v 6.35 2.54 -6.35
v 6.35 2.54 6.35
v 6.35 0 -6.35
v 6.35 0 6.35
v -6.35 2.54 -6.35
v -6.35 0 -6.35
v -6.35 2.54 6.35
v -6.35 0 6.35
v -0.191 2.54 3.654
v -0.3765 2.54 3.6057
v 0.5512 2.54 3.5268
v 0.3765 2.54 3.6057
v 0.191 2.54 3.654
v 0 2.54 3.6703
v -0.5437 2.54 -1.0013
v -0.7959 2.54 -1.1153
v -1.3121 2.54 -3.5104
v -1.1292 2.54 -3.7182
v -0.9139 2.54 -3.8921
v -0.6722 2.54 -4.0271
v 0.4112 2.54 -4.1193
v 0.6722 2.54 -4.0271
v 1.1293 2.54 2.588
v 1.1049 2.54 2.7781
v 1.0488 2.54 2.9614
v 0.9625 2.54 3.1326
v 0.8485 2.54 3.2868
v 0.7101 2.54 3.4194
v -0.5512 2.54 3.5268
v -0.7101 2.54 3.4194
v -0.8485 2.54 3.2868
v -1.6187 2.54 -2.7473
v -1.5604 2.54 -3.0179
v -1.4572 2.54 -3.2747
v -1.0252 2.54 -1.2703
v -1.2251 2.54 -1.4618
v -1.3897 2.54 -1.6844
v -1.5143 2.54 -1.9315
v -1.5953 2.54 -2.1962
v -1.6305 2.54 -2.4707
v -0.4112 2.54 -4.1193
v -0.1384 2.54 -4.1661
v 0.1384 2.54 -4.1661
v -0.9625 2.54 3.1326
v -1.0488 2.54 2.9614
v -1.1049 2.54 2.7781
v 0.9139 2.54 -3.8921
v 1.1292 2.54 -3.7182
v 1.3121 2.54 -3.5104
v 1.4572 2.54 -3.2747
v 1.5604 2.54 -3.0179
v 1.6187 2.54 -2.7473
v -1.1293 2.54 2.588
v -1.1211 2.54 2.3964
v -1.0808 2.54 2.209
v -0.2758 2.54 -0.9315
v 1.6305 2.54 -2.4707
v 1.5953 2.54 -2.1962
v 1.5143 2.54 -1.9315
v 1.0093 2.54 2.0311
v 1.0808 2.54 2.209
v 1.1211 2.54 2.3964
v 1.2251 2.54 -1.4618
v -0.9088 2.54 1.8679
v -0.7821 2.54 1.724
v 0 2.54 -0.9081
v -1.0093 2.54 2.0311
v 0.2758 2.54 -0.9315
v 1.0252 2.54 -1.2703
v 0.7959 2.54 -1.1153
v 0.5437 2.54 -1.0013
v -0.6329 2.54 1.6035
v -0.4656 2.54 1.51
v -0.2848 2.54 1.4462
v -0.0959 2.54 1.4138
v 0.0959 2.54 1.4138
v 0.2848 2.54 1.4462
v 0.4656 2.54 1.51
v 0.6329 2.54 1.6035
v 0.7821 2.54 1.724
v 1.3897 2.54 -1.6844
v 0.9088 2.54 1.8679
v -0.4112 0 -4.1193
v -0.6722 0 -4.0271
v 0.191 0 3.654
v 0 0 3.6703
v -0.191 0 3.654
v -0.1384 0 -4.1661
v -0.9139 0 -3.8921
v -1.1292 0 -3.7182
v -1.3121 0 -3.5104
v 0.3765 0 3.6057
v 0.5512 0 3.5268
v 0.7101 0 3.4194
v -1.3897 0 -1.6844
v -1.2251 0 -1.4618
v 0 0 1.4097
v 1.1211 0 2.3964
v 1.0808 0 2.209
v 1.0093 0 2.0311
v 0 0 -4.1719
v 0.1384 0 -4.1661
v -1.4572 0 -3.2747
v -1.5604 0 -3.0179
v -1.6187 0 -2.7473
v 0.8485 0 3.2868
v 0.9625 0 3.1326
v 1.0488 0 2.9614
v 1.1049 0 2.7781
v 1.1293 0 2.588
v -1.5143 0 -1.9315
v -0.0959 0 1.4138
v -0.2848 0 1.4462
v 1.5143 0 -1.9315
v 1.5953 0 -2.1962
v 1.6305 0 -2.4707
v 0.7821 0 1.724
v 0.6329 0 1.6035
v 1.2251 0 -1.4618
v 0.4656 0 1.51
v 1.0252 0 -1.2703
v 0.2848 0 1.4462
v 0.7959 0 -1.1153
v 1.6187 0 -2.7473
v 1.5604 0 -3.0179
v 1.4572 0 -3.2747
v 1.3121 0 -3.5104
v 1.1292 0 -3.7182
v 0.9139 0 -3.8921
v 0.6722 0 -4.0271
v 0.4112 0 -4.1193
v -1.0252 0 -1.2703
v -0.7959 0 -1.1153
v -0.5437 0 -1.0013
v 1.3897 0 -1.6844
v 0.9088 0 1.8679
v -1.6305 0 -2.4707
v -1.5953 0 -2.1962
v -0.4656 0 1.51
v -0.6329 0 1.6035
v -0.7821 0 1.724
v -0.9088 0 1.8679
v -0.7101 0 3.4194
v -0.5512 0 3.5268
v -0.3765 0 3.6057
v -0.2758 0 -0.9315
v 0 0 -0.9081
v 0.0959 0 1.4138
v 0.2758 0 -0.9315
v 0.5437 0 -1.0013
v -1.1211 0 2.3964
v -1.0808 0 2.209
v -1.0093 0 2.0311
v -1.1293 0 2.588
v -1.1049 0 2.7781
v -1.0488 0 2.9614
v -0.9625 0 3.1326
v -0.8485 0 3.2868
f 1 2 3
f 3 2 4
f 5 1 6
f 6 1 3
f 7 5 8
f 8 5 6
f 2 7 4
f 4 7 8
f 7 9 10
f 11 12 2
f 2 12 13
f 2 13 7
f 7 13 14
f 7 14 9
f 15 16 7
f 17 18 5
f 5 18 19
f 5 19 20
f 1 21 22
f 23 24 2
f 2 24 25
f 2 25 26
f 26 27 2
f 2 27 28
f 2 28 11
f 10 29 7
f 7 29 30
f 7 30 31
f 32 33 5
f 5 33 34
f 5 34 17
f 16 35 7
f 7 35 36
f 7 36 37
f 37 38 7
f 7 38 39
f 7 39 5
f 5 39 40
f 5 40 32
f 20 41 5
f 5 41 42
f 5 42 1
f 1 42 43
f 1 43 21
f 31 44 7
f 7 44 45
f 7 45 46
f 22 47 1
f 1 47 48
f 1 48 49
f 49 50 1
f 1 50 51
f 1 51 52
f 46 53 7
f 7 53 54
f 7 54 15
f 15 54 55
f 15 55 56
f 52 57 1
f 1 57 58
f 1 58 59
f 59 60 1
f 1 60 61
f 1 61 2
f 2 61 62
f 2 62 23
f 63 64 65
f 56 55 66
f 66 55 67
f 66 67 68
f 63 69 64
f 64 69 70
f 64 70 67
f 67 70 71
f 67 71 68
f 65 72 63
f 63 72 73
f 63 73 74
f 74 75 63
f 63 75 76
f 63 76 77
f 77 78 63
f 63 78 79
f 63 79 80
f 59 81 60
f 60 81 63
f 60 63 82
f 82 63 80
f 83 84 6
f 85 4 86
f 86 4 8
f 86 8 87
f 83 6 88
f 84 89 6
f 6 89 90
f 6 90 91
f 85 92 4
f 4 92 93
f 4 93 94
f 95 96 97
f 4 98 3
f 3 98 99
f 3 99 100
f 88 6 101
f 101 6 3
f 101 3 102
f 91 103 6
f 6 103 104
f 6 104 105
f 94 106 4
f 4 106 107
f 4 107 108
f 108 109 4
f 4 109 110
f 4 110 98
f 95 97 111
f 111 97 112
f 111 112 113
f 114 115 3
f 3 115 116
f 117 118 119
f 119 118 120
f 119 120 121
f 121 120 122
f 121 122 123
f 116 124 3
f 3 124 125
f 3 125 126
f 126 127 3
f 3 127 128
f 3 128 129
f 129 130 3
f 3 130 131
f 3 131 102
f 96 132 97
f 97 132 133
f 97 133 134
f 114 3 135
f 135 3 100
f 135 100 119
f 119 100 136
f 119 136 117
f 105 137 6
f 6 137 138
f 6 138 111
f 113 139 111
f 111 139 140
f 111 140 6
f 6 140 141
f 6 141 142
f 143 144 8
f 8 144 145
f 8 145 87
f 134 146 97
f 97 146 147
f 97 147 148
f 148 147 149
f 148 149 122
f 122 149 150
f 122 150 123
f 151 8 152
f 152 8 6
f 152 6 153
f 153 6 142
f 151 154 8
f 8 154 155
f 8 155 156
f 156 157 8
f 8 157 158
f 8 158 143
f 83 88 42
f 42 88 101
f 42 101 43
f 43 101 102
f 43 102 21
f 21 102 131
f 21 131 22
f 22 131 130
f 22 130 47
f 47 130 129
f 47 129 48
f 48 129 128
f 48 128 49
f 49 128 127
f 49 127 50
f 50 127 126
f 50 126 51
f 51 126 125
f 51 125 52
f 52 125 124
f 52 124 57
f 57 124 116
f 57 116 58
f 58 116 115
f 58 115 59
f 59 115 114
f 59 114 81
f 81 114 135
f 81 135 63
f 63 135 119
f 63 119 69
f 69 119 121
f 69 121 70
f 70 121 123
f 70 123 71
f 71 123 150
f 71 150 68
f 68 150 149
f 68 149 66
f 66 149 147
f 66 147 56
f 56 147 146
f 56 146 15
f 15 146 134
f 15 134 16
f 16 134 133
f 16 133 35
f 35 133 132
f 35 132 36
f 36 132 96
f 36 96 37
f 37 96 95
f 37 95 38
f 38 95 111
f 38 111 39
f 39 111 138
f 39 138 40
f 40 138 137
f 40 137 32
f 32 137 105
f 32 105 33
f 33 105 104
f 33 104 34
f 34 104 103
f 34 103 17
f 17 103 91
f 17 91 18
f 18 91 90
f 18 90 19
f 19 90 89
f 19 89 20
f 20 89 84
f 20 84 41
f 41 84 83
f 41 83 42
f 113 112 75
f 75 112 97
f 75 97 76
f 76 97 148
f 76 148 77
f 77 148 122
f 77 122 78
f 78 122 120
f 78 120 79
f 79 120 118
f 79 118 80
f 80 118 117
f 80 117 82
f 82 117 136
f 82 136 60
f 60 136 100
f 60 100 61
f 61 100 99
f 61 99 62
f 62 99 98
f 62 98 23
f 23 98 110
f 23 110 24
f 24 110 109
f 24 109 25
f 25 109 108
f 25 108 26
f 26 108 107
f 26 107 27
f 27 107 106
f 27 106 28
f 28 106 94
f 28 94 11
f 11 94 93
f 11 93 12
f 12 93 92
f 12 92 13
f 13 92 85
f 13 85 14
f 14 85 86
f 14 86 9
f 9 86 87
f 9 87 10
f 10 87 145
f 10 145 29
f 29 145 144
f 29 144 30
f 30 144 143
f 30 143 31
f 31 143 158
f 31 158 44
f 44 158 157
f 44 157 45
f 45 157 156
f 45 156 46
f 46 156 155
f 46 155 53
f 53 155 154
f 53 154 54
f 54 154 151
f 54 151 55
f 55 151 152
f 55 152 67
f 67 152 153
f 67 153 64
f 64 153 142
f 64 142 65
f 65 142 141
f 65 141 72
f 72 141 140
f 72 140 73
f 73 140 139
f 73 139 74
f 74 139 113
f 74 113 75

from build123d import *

# Parameters (mm, degrees)
SKETCH1_W                 = 12.7
SKETCH1_H                 = 12.7
BOSS_EXTRUDE1_DEPTH       = 2.54
F_4_CLEARANCE_HOLE1_D     = 3.2639
TAP_DRILL_FOR_4_40_TAP1_D = 2.2606


with BuildPart() as part:
    # Sketch1 → Boss-Extrude1 (new body)
    with BuildSketch(Plane(origin=(0, 0, 0), x_dir=(1, 0, 0), z_dir=(0, 1, 0))):
        Rectangle(SKETCH1_W, SKETCH1_H)
    extrude(amount=BOSS_EXTRUDE1_DEPTH)

    # #4 Clearance Hole1 (through all)
    with Locations(Plane(origin=(0, 2.54, -2.54), x_dir=(0, 0, 1), z_dir=(0, 1, 0))):
        with Locations((0, 0)):
            Hole(F_4_CLEARANCE_HOLE1_D / 2)

    # Tap Drill for #4-40 Tap1 (through all)
    with Locations(Plane(origin=(0, 2.54, 2.54), x_dir=(0, 0, 1), z_dir=(0, 1, 0))):
        with Locations((0, 0)):
            Hole(TAP_DRILL_FOR_4_40_TAP1_D / 2)


solid = part.part
